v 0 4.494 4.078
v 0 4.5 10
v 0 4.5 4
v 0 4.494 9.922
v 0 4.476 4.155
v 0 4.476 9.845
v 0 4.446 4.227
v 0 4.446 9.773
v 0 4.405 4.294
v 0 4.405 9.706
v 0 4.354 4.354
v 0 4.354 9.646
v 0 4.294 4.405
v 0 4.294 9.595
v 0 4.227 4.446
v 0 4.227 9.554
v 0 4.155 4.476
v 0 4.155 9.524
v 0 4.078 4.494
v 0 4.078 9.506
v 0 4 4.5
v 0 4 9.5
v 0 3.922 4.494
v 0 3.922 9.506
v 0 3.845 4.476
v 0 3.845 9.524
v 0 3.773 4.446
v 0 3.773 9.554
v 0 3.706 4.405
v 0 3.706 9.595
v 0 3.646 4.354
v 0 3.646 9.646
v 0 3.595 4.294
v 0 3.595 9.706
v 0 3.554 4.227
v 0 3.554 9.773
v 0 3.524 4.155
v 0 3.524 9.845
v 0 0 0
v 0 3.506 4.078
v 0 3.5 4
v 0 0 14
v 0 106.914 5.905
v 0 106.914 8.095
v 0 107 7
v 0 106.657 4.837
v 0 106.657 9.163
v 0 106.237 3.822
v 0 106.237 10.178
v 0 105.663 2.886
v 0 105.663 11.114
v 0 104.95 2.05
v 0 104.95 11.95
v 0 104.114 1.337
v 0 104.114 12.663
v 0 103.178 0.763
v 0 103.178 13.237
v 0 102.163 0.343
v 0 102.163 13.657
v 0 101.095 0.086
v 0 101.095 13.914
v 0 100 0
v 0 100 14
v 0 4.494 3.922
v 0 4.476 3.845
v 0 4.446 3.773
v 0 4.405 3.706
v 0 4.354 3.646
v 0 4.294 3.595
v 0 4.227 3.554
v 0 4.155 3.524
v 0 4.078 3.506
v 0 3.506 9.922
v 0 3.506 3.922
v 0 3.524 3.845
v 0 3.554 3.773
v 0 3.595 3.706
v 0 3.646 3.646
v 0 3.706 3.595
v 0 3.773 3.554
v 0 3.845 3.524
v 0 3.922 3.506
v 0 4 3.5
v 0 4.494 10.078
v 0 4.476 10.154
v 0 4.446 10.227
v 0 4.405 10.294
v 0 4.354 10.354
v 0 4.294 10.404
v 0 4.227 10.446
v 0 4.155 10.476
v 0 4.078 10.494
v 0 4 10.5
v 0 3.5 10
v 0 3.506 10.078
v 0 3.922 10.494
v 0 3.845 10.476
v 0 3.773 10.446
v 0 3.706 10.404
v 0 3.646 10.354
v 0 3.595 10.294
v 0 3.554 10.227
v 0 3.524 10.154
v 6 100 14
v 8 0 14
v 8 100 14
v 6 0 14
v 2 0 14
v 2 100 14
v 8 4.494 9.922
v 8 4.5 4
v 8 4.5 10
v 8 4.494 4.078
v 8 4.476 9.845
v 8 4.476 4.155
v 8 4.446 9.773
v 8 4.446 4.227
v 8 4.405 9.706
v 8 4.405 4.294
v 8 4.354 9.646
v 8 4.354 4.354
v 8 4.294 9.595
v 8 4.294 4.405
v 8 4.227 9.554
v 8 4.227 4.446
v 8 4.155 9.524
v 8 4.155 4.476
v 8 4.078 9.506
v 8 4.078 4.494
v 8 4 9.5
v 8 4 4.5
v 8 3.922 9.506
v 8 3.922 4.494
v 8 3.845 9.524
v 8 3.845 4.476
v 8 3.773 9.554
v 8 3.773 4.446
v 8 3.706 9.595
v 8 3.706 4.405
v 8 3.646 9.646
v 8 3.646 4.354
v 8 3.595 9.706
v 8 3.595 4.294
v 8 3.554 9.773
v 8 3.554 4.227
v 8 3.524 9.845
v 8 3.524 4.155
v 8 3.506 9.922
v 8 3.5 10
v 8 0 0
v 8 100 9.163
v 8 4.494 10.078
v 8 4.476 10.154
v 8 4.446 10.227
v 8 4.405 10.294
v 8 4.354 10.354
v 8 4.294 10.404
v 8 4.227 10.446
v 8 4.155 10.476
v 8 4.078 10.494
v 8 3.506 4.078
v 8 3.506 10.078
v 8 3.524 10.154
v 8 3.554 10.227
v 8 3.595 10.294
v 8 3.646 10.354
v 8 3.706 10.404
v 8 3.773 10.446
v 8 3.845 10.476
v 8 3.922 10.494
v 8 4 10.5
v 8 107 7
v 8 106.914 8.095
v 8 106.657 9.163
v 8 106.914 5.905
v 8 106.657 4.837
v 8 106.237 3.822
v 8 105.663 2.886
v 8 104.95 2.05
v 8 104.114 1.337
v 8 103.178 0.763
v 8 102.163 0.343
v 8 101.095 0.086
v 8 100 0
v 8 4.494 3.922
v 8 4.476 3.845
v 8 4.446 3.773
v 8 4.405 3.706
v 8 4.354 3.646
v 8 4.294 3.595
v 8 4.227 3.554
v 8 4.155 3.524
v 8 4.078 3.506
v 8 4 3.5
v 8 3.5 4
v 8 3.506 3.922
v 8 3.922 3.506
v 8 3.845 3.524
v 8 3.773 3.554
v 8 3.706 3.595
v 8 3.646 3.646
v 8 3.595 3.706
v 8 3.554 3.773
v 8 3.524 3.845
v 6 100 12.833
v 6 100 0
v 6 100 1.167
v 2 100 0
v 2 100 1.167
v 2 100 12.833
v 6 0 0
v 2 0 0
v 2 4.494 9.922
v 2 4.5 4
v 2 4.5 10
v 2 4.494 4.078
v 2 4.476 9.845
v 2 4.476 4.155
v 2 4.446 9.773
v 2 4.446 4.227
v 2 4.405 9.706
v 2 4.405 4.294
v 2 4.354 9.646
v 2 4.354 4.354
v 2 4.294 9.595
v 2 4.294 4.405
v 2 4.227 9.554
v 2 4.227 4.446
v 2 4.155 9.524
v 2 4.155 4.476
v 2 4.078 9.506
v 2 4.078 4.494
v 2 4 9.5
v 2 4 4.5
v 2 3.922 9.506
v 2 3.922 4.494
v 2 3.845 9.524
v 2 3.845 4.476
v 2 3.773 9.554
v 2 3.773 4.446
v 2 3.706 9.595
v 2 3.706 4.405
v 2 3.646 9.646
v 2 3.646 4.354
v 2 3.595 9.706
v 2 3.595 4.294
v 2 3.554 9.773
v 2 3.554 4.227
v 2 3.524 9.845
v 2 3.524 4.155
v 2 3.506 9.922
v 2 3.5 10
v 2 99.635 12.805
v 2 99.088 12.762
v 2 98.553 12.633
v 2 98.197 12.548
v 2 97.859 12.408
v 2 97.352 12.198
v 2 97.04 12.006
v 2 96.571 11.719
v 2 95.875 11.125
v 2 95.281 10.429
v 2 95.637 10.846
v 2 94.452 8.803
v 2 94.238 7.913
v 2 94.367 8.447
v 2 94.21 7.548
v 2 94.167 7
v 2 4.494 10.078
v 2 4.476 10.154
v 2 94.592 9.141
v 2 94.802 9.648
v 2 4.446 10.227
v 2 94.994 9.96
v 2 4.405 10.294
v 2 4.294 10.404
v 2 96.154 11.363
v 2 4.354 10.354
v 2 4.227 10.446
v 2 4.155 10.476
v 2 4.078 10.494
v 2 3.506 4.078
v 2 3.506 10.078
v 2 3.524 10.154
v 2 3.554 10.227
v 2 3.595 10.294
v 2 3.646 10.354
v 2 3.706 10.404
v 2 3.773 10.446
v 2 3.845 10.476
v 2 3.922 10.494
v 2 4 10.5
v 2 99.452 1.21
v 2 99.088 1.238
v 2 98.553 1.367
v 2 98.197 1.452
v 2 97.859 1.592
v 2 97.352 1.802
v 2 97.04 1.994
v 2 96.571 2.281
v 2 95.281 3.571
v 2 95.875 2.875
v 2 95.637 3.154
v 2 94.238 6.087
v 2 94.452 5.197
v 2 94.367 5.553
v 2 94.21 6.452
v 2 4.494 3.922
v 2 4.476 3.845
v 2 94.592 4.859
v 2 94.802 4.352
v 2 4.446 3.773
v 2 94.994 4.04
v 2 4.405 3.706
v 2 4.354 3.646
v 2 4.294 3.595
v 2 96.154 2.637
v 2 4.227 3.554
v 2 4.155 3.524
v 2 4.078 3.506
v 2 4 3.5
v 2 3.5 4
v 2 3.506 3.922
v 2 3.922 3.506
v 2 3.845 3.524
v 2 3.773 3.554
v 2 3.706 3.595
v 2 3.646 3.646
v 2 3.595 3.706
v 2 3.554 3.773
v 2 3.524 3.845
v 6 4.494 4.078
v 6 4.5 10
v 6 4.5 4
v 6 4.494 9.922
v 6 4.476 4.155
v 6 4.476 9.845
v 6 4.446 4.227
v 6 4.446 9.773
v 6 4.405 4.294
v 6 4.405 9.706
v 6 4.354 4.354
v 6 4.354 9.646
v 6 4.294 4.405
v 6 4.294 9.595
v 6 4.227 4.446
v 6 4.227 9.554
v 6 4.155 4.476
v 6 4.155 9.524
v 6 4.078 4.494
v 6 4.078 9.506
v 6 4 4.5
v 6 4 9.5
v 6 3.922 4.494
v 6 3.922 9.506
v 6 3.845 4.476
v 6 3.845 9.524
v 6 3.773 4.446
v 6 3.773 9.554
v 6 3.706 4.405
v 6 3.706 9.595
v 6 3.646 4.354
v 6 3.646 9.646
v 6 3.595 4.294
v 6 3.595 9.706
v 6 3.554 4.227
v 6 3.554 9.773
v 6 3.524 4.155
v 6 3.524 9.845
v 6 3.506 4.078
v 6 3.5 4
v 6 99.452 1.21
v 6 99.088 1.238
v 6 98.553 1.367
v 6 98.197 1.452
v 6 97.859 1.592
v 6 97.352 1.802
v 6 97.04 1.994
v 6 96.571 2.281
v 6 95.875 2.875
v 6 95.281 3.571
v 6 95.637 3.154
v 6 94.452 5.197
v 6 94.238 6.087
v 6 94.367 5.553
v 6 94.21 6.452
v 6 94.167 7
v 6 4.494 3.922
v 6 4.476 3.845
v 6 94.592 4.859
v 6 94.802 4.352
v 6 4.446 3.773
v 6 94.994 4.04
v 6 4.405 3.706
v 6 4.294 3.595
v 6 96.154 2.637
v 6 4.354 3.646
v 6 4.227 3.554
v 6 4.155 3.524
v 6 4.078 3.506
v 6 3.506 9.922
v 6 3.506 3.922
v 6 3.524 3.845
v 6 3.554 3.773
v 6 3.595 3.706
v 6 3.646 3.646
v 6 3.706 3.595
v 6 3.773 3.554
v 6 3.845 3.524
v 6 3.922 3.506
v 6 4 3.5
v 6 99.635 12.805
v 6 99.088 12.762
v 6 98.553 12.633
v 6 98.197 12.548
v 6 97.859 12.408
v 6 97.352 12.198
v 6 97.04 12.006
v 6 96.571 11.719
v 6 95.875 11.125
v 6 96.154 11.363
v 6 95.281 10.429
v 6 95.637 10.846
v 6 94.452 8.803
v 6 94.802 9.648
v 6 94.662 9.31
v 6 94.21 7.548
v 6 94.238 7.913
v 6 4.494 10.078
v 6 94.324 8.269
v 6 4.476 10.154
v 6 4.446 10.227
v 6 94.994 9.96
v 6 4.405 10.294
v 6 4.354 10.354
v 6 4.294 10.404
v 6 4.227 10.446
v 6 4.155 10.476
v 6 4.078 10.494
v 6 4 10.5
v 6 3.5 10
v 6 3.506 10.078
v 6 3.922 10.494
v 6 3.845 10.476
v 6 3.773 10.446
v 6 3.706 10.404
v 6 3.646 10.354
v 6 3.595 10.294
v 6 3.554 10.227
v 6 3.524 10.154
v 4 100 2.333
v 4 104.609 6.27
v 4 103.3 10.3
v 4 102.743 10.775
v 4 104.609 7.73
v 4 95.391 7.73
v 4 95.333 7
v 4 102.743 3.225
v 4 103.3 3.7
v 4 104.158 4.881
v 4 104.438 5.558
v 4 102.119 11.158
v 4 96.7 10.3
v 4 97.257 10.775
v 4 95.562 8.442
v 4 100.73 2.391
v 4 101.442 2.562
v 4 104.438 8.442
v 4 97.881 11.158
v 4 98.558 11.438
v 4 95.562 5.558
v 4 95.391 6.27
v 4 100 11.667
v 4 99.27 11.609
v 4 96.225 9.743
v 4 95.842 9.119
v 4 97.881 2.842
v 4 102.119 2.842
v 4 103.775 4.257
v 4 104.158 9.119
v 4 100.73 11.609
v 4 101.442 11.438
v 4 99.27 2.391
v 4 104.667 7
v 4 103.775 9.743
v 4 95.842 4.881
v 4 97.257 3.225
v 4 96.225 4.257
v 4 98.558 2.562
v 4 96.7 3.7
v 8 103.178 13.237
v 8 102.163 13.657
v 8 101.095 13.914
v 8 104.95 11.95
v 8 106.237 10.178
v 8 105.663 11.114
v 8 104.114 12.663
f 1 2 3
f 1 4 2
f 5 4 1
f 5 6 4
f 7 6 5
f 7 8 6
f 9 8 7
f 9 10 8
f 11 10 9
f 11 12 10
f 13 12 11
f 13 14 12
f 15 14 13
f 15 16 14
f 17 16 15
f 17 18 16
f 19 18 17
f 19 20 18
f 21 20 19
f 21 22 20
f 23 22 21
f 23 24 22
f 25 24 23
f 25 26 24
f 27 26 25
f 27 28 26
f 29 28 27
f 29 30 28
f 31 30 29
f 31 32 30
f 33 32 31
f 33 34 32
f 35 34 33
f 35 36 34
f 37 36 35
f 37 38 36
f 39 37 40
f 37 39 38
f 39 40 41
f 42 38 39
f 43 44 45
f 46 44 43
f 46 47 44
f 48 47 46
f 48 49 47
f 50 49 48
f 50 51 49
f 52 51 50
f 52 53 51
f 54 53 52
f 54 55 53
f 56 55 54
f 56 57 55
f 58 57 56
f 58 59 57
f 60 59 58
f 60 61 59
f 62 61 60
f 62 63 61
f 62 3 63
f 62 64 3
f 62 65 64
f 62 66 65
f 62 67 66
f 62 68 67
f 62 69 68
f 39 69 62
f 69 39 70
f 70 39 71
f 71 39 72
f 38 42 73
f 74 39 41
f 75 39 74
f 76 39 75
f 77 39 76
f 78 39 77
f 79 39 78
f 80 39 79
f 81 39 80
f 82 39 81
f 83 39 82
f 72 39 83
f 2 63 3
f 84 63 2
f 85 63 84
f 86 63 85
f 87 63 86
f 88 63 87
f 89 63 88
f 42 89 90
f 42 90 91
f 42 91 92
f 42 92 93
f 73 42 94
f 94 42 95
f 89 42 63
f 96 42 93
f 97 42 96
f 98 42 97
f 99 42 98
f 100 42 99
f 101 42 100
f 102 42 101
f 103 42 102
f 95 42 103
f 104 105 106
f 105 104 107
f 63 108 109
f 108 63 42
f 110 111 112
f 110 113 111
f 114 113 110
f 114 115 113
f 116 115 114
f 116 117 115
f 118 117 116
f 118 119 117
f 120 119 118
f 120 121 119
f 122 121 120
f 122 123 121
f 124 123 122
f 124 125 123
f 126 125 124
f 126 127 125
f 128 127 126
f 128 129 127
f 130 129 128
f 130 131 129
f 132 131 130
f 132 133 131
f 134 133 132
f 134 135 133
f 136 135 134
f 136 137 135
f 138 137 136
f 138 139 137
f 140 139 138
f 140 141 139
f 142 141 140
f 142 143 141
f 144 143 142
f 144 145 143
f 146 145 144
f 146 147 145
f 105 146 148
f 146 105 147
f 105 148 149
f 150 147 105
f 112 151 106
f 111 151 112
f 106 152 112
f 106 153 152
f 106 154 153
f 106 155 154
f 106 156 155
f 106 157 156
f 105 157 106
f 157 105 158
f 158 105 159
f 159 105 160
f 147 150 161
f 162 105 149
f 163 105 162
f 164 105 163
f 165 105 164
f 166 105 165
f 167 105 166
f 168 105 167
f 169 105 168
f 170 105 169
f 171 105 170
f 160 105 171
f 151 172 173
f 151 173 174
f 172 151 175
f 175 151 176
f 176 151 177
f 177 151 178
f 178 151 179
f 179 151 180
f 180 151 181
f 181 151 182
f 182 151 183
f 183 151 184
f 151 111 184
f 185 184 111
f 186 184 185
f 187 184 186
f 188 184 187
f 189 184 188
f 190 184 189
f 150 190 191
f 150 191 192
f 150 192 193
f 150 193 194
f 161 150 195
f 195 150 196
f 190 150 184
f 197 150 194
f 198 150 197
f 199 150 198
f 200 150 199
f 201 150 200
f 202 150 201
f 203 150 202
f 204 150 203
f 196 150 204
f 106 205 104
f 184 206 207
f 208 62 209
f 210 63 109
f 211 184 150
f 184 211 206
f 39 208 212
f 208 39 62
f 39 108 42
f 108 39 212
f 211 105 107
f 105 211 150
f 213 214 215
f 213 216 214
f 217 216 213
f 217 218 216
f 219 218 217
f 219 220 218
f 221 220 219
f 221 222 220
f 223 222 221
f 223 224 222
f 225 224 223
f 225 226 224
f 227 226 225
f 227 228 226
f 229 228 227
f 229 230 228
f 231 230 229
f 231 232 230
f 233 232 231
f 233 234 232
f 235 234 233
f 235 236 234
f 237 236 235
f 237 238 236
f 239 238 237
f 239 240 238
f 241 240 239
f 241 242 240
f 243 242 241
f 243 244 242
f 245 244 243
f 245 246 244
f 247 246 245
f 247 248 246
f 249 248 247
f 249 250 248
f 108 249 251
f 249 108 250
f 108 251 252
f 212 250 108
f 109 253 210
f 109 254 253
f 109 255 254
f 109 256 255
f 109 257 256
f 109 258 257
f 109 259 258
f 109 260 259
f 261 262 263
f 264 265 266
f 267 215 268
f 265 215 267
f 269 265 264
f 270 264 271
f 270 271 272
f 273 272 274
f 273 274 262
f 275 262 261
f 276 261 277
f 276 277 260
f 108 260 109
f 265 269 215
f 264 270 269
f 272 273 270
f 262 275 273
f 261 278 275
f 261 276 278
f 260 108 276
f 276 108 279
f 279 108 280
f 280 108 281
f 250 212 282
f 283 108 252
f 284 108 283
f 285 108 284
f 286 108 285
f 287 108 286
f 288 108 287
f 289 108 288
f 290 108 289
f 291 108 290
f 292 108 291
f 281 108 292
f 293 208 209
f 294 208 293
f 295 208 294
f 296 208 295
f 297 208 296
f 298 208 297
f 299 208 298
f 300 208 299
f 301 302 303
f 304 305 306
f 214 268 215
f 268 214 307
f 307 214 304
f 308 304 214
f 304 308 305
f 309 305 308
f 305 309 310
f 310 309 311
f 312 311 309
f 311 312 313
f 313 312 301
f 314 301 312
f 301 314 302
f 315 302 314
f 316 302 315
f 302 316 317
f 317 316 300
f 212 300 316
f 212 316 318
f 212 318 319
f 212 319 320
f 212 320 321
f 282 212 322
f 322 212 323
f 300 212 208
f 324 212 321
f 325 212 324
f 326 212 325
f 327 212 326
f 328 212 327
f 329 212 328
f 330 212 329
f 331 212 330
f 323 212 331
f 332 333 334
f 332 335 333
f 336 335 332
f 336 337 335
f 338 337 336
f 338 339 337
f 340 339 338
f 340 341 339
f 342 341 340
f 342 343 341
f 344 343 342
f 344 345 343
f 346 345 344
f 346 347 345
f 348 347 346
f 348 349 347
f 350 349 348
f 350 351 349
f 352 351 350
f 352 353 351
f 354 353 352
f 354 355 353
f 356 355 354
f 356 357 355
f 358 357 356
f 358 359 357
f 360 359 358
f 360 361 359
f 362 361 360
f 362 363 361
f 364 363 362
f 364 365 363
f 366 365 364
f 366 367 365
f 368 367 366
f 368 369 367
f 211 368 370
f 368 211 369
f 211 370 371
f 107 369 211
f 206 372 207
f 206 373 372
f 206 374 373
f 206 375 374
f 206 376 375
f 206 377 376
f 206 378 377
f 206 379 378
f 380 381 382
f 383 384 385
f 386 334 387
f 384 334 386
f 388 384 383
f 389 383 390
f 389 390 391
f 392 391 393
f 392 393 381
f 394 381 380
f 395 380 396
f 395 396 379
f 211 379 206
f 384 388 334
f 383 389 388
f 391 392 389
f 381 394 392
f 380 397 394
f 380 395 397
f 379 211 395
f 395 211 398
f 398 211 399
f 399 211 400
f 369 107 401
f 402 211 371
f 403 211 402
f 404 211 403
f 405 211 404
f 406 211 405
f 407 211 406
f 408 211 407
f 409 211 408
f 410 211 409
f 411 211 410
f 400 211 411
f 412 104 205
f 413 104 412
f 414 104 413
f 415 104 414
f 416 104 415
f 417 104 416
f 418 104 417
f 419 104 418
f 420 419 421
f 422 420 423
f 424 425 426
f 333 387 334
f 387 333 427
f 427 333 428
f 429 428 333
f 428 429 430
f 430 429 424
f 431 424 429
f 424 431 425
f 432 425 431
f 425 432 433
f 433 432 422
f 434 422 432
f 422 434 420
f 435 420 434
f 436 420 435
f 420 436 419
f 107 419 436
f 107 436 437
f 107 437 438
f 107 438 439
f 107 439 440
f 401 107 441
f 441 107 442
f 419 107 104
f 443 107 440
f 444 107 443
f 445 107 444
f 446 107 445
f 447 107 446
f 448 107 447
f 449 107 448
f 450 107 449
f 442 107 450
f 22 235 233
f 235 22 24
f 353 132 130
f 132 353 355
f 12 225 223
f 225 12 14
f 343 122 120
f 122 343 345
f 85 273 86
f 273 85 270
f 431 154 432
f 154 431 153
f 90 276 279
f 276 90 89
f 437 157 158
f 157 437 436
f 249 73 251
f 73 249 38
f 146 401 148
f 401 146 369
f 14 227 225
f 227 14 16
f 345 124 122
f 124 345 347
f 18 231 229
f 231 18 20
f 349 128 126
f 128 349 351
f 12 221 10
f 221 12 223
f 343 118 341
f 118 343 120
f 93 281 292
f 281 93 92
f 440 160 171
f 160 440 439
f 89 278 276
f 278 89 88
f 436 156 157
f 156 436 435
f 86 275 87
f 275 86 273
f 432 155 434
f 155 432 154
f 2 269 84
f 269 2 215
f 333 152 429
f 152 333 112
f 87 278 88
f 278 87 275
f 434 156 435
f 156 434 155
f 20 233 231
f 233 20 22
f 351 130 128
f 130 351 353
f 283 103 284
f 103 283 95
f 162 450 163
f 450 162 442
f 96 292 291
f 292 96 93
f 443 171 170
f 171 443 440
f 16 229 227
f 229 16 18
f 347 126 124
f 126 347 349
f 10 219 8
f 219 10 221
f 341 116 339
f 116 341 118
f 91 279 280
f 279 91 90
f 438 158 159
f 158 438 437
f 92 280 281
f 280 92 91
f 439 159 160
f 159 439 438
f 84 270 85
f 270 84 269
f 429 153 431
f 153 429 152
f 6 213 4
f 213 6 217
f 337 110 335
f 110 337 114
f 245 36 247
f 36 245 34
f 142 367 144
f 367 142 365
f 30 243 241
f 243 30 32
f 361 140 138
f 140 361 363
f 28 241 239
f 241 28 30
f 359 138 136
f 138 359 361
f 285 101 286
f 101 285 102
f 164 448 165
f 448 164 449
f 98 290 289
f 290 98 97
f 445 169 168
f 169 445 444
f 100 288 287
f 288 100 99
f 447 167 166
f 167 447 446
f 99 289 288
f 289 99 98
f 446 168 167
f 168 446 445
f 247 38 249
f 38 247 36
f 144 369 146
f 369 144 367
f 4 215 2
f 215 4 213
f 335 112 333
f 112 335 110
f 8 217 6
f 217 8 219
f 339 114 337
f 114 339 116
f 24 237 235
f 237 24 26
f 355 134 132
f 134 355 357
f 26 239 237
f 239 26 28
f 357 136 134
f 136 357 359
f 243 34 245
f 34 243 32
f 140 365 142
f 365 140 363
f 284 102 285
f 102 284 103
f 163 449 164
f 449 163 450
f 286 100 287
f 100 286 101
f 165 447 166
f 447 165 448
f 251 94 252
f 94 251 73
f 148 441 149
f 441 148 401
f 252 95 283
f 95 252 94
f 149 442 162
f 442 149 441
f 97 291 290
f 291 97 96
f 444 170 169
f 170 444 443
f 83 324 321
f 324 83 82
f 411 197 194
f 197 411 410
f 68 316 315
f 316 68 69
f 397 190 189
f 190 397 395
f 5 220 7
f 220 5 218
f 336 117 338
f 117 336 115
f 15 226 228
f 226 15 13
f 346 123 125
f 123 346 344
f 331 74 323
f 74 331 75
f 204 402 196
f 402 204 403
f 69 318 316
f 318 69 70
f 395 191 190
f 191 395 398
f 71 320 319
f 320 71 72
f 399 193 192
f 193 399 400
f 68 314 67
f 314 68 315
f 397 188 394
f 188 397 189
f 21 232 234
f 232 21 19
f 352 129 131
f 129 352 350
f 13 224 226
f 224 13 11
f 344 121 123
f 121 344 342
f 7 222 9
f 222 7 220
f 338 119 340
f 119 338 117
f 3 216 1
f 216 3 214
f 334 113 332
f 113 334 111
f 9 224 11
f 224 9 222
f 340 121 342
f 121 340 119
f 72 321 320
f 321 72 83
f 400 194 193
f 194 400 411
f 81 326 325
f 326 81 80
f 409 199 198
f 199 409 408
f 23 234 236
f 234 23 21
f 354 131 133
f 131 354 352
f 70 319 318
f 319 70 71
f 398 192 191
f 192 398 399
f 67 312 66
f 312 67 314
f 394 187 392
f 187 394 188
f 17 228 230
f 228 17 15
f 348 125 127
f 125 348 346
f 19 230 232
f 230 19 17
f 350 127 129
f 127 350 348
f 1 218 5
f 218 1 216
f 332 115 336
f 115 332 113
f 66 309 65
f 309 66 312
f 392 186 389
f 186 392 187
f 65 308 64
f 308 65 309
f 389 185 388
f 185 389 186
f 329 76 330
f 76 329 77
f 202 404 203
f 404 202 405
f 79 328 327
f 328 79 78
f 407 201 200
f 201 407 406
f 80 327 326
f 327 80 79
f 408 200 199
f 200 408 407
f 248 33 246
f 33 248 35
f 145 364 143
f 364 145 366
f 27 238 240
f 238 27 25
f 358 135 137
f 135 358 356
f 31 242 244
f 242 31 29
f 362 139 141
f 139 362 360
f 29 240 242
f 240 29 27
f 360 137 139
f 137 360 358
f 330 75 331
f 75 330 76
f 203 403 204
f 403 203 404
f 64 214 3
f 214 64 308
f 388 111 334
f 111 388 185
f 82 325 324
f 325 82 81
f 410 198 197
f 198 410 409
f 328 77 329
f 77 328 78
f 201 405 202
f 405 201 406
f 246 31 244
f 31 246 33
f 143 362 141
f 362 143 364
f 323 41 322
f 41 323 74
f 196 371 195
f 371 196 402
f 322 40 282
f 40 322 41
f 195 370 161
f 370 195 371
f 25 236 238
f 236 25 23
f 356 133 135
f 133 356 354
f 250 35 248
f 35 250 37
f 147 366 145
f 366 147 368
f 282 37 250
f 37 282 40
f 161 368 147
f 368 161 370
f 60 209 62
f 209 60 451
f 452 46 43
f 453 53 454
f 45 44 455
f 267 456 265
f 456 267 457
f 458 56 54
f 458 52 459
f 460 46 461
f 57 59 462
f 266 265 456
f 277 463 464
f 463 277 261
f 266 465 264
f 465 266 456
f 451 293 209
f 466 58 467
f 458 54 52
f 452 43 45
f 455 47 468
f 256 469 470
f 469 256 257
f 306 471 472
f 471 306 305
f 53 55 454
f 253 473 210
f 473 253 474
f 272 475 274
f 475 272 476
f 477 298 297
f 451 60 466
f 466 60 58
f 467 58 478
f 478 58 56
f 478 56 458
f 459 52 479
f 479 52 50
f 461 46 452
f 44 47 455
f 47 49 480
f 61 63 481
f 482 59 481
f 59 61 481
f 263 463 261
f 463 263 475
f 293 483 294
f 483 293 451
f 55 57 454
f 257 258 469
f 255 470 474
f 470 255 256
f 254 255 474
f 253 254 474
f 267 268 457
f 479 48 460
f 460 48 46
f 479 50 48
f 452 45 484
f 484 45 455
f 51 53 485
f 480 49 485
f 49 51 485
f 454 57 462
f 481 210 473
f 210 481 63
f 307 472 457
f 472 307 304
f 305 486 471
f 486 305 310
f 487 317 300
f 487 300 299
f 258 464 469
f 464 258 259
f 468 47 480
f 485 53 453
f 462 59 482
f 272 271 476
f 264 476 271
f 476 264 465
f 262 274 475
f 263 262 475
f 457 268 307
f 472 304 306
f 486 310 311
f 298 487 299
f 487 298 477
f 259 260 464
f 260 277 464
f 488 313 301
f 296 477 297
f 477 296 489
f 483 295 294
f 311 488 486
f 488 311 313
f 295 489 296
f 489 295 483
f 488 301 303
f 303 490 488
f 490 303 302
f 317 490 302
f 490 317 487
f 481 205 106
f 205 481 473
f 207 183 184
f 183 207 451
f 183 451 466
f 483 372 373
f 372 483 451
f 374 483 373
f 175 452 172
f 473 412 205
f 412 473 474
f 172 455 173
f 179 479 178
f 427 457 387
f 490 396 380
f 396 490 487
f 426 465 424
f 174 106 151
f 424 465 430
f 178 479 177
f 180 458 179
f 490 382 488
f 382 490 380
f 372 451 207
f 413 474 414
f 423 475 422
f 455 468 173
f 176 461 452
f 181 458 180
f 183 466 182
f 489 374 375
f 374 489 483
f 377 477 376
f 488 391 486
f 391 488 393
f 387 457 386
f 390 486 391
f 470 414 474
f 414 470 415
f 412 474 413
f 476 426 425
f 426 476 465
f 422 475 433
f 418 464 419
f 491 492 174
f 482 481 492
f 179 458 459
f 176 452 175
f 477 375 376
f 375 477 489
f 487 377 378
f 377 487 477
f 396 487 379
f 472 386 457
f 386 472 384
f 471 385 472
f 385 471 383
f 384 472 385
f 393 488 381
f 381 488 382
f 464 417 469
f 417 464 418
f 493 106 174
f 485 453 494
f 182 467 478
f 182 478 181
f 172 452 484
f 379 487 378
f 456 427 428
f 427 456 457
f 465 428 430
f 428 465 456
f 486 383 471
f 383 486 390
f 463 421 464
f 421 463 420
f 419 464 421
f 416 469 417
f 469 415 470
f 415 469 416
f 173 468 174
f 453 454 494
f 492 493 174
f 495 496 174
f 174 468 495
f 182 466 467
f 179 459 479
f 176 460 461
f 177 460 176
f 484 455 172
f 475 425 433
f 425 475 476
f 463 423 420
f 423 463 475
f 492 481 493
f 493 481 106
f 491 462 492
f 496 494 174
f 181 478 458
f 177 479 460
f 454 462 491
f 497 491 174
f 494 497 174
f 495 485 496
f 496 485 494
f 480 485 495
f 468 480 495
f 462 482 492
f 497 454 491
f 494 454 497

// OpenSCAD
module support(){
    length = 100;
    width = 8;
    height = 14;
    void_width = 4;
    void_length = length+2;
    wheel_void_width = 4;
    wheel_void_length = 18;
    union(){
        difference(){
            cube([width, length, height]);
            
            // Wire void
            translate([(width-void_width)/2, -1 ,-2]) cube([void_width, void_length, 20]);
            
            // Wheel void
            translate([(width-wheel_void_width)/2, -1 ,-2]) cube([wheel_void_width, wheel_void_length, 20]);
            
            axle_r = 0.5;
            // Axle 1
            translate([-1, 4 ,10]) rotate([0, 90, 0]) cylinder(h=60, r1=axle_r, r2=axle_r, center=false, $fn=40);
            
            // Axle 2
            translate([-1, 4 ,4]) rotate([0, 90, 0]) cylinder(h=60, r1=axle_r, r2=axle_r, center=false, $fn=40);
        }
        
        // Rear wire support
        translate([0, length, height/2]) rotate([0, 90, 0]) cylinder(h=width/2, r1=height/2, r2=height/3, center=false, $fn=40);
        translate([width/2, length, height/2]) rotate([0, 90, 0]) cylinder(h=width/2, r1=height/3, r2=height/2, center=false, $fn=40);
    }
}

support();
